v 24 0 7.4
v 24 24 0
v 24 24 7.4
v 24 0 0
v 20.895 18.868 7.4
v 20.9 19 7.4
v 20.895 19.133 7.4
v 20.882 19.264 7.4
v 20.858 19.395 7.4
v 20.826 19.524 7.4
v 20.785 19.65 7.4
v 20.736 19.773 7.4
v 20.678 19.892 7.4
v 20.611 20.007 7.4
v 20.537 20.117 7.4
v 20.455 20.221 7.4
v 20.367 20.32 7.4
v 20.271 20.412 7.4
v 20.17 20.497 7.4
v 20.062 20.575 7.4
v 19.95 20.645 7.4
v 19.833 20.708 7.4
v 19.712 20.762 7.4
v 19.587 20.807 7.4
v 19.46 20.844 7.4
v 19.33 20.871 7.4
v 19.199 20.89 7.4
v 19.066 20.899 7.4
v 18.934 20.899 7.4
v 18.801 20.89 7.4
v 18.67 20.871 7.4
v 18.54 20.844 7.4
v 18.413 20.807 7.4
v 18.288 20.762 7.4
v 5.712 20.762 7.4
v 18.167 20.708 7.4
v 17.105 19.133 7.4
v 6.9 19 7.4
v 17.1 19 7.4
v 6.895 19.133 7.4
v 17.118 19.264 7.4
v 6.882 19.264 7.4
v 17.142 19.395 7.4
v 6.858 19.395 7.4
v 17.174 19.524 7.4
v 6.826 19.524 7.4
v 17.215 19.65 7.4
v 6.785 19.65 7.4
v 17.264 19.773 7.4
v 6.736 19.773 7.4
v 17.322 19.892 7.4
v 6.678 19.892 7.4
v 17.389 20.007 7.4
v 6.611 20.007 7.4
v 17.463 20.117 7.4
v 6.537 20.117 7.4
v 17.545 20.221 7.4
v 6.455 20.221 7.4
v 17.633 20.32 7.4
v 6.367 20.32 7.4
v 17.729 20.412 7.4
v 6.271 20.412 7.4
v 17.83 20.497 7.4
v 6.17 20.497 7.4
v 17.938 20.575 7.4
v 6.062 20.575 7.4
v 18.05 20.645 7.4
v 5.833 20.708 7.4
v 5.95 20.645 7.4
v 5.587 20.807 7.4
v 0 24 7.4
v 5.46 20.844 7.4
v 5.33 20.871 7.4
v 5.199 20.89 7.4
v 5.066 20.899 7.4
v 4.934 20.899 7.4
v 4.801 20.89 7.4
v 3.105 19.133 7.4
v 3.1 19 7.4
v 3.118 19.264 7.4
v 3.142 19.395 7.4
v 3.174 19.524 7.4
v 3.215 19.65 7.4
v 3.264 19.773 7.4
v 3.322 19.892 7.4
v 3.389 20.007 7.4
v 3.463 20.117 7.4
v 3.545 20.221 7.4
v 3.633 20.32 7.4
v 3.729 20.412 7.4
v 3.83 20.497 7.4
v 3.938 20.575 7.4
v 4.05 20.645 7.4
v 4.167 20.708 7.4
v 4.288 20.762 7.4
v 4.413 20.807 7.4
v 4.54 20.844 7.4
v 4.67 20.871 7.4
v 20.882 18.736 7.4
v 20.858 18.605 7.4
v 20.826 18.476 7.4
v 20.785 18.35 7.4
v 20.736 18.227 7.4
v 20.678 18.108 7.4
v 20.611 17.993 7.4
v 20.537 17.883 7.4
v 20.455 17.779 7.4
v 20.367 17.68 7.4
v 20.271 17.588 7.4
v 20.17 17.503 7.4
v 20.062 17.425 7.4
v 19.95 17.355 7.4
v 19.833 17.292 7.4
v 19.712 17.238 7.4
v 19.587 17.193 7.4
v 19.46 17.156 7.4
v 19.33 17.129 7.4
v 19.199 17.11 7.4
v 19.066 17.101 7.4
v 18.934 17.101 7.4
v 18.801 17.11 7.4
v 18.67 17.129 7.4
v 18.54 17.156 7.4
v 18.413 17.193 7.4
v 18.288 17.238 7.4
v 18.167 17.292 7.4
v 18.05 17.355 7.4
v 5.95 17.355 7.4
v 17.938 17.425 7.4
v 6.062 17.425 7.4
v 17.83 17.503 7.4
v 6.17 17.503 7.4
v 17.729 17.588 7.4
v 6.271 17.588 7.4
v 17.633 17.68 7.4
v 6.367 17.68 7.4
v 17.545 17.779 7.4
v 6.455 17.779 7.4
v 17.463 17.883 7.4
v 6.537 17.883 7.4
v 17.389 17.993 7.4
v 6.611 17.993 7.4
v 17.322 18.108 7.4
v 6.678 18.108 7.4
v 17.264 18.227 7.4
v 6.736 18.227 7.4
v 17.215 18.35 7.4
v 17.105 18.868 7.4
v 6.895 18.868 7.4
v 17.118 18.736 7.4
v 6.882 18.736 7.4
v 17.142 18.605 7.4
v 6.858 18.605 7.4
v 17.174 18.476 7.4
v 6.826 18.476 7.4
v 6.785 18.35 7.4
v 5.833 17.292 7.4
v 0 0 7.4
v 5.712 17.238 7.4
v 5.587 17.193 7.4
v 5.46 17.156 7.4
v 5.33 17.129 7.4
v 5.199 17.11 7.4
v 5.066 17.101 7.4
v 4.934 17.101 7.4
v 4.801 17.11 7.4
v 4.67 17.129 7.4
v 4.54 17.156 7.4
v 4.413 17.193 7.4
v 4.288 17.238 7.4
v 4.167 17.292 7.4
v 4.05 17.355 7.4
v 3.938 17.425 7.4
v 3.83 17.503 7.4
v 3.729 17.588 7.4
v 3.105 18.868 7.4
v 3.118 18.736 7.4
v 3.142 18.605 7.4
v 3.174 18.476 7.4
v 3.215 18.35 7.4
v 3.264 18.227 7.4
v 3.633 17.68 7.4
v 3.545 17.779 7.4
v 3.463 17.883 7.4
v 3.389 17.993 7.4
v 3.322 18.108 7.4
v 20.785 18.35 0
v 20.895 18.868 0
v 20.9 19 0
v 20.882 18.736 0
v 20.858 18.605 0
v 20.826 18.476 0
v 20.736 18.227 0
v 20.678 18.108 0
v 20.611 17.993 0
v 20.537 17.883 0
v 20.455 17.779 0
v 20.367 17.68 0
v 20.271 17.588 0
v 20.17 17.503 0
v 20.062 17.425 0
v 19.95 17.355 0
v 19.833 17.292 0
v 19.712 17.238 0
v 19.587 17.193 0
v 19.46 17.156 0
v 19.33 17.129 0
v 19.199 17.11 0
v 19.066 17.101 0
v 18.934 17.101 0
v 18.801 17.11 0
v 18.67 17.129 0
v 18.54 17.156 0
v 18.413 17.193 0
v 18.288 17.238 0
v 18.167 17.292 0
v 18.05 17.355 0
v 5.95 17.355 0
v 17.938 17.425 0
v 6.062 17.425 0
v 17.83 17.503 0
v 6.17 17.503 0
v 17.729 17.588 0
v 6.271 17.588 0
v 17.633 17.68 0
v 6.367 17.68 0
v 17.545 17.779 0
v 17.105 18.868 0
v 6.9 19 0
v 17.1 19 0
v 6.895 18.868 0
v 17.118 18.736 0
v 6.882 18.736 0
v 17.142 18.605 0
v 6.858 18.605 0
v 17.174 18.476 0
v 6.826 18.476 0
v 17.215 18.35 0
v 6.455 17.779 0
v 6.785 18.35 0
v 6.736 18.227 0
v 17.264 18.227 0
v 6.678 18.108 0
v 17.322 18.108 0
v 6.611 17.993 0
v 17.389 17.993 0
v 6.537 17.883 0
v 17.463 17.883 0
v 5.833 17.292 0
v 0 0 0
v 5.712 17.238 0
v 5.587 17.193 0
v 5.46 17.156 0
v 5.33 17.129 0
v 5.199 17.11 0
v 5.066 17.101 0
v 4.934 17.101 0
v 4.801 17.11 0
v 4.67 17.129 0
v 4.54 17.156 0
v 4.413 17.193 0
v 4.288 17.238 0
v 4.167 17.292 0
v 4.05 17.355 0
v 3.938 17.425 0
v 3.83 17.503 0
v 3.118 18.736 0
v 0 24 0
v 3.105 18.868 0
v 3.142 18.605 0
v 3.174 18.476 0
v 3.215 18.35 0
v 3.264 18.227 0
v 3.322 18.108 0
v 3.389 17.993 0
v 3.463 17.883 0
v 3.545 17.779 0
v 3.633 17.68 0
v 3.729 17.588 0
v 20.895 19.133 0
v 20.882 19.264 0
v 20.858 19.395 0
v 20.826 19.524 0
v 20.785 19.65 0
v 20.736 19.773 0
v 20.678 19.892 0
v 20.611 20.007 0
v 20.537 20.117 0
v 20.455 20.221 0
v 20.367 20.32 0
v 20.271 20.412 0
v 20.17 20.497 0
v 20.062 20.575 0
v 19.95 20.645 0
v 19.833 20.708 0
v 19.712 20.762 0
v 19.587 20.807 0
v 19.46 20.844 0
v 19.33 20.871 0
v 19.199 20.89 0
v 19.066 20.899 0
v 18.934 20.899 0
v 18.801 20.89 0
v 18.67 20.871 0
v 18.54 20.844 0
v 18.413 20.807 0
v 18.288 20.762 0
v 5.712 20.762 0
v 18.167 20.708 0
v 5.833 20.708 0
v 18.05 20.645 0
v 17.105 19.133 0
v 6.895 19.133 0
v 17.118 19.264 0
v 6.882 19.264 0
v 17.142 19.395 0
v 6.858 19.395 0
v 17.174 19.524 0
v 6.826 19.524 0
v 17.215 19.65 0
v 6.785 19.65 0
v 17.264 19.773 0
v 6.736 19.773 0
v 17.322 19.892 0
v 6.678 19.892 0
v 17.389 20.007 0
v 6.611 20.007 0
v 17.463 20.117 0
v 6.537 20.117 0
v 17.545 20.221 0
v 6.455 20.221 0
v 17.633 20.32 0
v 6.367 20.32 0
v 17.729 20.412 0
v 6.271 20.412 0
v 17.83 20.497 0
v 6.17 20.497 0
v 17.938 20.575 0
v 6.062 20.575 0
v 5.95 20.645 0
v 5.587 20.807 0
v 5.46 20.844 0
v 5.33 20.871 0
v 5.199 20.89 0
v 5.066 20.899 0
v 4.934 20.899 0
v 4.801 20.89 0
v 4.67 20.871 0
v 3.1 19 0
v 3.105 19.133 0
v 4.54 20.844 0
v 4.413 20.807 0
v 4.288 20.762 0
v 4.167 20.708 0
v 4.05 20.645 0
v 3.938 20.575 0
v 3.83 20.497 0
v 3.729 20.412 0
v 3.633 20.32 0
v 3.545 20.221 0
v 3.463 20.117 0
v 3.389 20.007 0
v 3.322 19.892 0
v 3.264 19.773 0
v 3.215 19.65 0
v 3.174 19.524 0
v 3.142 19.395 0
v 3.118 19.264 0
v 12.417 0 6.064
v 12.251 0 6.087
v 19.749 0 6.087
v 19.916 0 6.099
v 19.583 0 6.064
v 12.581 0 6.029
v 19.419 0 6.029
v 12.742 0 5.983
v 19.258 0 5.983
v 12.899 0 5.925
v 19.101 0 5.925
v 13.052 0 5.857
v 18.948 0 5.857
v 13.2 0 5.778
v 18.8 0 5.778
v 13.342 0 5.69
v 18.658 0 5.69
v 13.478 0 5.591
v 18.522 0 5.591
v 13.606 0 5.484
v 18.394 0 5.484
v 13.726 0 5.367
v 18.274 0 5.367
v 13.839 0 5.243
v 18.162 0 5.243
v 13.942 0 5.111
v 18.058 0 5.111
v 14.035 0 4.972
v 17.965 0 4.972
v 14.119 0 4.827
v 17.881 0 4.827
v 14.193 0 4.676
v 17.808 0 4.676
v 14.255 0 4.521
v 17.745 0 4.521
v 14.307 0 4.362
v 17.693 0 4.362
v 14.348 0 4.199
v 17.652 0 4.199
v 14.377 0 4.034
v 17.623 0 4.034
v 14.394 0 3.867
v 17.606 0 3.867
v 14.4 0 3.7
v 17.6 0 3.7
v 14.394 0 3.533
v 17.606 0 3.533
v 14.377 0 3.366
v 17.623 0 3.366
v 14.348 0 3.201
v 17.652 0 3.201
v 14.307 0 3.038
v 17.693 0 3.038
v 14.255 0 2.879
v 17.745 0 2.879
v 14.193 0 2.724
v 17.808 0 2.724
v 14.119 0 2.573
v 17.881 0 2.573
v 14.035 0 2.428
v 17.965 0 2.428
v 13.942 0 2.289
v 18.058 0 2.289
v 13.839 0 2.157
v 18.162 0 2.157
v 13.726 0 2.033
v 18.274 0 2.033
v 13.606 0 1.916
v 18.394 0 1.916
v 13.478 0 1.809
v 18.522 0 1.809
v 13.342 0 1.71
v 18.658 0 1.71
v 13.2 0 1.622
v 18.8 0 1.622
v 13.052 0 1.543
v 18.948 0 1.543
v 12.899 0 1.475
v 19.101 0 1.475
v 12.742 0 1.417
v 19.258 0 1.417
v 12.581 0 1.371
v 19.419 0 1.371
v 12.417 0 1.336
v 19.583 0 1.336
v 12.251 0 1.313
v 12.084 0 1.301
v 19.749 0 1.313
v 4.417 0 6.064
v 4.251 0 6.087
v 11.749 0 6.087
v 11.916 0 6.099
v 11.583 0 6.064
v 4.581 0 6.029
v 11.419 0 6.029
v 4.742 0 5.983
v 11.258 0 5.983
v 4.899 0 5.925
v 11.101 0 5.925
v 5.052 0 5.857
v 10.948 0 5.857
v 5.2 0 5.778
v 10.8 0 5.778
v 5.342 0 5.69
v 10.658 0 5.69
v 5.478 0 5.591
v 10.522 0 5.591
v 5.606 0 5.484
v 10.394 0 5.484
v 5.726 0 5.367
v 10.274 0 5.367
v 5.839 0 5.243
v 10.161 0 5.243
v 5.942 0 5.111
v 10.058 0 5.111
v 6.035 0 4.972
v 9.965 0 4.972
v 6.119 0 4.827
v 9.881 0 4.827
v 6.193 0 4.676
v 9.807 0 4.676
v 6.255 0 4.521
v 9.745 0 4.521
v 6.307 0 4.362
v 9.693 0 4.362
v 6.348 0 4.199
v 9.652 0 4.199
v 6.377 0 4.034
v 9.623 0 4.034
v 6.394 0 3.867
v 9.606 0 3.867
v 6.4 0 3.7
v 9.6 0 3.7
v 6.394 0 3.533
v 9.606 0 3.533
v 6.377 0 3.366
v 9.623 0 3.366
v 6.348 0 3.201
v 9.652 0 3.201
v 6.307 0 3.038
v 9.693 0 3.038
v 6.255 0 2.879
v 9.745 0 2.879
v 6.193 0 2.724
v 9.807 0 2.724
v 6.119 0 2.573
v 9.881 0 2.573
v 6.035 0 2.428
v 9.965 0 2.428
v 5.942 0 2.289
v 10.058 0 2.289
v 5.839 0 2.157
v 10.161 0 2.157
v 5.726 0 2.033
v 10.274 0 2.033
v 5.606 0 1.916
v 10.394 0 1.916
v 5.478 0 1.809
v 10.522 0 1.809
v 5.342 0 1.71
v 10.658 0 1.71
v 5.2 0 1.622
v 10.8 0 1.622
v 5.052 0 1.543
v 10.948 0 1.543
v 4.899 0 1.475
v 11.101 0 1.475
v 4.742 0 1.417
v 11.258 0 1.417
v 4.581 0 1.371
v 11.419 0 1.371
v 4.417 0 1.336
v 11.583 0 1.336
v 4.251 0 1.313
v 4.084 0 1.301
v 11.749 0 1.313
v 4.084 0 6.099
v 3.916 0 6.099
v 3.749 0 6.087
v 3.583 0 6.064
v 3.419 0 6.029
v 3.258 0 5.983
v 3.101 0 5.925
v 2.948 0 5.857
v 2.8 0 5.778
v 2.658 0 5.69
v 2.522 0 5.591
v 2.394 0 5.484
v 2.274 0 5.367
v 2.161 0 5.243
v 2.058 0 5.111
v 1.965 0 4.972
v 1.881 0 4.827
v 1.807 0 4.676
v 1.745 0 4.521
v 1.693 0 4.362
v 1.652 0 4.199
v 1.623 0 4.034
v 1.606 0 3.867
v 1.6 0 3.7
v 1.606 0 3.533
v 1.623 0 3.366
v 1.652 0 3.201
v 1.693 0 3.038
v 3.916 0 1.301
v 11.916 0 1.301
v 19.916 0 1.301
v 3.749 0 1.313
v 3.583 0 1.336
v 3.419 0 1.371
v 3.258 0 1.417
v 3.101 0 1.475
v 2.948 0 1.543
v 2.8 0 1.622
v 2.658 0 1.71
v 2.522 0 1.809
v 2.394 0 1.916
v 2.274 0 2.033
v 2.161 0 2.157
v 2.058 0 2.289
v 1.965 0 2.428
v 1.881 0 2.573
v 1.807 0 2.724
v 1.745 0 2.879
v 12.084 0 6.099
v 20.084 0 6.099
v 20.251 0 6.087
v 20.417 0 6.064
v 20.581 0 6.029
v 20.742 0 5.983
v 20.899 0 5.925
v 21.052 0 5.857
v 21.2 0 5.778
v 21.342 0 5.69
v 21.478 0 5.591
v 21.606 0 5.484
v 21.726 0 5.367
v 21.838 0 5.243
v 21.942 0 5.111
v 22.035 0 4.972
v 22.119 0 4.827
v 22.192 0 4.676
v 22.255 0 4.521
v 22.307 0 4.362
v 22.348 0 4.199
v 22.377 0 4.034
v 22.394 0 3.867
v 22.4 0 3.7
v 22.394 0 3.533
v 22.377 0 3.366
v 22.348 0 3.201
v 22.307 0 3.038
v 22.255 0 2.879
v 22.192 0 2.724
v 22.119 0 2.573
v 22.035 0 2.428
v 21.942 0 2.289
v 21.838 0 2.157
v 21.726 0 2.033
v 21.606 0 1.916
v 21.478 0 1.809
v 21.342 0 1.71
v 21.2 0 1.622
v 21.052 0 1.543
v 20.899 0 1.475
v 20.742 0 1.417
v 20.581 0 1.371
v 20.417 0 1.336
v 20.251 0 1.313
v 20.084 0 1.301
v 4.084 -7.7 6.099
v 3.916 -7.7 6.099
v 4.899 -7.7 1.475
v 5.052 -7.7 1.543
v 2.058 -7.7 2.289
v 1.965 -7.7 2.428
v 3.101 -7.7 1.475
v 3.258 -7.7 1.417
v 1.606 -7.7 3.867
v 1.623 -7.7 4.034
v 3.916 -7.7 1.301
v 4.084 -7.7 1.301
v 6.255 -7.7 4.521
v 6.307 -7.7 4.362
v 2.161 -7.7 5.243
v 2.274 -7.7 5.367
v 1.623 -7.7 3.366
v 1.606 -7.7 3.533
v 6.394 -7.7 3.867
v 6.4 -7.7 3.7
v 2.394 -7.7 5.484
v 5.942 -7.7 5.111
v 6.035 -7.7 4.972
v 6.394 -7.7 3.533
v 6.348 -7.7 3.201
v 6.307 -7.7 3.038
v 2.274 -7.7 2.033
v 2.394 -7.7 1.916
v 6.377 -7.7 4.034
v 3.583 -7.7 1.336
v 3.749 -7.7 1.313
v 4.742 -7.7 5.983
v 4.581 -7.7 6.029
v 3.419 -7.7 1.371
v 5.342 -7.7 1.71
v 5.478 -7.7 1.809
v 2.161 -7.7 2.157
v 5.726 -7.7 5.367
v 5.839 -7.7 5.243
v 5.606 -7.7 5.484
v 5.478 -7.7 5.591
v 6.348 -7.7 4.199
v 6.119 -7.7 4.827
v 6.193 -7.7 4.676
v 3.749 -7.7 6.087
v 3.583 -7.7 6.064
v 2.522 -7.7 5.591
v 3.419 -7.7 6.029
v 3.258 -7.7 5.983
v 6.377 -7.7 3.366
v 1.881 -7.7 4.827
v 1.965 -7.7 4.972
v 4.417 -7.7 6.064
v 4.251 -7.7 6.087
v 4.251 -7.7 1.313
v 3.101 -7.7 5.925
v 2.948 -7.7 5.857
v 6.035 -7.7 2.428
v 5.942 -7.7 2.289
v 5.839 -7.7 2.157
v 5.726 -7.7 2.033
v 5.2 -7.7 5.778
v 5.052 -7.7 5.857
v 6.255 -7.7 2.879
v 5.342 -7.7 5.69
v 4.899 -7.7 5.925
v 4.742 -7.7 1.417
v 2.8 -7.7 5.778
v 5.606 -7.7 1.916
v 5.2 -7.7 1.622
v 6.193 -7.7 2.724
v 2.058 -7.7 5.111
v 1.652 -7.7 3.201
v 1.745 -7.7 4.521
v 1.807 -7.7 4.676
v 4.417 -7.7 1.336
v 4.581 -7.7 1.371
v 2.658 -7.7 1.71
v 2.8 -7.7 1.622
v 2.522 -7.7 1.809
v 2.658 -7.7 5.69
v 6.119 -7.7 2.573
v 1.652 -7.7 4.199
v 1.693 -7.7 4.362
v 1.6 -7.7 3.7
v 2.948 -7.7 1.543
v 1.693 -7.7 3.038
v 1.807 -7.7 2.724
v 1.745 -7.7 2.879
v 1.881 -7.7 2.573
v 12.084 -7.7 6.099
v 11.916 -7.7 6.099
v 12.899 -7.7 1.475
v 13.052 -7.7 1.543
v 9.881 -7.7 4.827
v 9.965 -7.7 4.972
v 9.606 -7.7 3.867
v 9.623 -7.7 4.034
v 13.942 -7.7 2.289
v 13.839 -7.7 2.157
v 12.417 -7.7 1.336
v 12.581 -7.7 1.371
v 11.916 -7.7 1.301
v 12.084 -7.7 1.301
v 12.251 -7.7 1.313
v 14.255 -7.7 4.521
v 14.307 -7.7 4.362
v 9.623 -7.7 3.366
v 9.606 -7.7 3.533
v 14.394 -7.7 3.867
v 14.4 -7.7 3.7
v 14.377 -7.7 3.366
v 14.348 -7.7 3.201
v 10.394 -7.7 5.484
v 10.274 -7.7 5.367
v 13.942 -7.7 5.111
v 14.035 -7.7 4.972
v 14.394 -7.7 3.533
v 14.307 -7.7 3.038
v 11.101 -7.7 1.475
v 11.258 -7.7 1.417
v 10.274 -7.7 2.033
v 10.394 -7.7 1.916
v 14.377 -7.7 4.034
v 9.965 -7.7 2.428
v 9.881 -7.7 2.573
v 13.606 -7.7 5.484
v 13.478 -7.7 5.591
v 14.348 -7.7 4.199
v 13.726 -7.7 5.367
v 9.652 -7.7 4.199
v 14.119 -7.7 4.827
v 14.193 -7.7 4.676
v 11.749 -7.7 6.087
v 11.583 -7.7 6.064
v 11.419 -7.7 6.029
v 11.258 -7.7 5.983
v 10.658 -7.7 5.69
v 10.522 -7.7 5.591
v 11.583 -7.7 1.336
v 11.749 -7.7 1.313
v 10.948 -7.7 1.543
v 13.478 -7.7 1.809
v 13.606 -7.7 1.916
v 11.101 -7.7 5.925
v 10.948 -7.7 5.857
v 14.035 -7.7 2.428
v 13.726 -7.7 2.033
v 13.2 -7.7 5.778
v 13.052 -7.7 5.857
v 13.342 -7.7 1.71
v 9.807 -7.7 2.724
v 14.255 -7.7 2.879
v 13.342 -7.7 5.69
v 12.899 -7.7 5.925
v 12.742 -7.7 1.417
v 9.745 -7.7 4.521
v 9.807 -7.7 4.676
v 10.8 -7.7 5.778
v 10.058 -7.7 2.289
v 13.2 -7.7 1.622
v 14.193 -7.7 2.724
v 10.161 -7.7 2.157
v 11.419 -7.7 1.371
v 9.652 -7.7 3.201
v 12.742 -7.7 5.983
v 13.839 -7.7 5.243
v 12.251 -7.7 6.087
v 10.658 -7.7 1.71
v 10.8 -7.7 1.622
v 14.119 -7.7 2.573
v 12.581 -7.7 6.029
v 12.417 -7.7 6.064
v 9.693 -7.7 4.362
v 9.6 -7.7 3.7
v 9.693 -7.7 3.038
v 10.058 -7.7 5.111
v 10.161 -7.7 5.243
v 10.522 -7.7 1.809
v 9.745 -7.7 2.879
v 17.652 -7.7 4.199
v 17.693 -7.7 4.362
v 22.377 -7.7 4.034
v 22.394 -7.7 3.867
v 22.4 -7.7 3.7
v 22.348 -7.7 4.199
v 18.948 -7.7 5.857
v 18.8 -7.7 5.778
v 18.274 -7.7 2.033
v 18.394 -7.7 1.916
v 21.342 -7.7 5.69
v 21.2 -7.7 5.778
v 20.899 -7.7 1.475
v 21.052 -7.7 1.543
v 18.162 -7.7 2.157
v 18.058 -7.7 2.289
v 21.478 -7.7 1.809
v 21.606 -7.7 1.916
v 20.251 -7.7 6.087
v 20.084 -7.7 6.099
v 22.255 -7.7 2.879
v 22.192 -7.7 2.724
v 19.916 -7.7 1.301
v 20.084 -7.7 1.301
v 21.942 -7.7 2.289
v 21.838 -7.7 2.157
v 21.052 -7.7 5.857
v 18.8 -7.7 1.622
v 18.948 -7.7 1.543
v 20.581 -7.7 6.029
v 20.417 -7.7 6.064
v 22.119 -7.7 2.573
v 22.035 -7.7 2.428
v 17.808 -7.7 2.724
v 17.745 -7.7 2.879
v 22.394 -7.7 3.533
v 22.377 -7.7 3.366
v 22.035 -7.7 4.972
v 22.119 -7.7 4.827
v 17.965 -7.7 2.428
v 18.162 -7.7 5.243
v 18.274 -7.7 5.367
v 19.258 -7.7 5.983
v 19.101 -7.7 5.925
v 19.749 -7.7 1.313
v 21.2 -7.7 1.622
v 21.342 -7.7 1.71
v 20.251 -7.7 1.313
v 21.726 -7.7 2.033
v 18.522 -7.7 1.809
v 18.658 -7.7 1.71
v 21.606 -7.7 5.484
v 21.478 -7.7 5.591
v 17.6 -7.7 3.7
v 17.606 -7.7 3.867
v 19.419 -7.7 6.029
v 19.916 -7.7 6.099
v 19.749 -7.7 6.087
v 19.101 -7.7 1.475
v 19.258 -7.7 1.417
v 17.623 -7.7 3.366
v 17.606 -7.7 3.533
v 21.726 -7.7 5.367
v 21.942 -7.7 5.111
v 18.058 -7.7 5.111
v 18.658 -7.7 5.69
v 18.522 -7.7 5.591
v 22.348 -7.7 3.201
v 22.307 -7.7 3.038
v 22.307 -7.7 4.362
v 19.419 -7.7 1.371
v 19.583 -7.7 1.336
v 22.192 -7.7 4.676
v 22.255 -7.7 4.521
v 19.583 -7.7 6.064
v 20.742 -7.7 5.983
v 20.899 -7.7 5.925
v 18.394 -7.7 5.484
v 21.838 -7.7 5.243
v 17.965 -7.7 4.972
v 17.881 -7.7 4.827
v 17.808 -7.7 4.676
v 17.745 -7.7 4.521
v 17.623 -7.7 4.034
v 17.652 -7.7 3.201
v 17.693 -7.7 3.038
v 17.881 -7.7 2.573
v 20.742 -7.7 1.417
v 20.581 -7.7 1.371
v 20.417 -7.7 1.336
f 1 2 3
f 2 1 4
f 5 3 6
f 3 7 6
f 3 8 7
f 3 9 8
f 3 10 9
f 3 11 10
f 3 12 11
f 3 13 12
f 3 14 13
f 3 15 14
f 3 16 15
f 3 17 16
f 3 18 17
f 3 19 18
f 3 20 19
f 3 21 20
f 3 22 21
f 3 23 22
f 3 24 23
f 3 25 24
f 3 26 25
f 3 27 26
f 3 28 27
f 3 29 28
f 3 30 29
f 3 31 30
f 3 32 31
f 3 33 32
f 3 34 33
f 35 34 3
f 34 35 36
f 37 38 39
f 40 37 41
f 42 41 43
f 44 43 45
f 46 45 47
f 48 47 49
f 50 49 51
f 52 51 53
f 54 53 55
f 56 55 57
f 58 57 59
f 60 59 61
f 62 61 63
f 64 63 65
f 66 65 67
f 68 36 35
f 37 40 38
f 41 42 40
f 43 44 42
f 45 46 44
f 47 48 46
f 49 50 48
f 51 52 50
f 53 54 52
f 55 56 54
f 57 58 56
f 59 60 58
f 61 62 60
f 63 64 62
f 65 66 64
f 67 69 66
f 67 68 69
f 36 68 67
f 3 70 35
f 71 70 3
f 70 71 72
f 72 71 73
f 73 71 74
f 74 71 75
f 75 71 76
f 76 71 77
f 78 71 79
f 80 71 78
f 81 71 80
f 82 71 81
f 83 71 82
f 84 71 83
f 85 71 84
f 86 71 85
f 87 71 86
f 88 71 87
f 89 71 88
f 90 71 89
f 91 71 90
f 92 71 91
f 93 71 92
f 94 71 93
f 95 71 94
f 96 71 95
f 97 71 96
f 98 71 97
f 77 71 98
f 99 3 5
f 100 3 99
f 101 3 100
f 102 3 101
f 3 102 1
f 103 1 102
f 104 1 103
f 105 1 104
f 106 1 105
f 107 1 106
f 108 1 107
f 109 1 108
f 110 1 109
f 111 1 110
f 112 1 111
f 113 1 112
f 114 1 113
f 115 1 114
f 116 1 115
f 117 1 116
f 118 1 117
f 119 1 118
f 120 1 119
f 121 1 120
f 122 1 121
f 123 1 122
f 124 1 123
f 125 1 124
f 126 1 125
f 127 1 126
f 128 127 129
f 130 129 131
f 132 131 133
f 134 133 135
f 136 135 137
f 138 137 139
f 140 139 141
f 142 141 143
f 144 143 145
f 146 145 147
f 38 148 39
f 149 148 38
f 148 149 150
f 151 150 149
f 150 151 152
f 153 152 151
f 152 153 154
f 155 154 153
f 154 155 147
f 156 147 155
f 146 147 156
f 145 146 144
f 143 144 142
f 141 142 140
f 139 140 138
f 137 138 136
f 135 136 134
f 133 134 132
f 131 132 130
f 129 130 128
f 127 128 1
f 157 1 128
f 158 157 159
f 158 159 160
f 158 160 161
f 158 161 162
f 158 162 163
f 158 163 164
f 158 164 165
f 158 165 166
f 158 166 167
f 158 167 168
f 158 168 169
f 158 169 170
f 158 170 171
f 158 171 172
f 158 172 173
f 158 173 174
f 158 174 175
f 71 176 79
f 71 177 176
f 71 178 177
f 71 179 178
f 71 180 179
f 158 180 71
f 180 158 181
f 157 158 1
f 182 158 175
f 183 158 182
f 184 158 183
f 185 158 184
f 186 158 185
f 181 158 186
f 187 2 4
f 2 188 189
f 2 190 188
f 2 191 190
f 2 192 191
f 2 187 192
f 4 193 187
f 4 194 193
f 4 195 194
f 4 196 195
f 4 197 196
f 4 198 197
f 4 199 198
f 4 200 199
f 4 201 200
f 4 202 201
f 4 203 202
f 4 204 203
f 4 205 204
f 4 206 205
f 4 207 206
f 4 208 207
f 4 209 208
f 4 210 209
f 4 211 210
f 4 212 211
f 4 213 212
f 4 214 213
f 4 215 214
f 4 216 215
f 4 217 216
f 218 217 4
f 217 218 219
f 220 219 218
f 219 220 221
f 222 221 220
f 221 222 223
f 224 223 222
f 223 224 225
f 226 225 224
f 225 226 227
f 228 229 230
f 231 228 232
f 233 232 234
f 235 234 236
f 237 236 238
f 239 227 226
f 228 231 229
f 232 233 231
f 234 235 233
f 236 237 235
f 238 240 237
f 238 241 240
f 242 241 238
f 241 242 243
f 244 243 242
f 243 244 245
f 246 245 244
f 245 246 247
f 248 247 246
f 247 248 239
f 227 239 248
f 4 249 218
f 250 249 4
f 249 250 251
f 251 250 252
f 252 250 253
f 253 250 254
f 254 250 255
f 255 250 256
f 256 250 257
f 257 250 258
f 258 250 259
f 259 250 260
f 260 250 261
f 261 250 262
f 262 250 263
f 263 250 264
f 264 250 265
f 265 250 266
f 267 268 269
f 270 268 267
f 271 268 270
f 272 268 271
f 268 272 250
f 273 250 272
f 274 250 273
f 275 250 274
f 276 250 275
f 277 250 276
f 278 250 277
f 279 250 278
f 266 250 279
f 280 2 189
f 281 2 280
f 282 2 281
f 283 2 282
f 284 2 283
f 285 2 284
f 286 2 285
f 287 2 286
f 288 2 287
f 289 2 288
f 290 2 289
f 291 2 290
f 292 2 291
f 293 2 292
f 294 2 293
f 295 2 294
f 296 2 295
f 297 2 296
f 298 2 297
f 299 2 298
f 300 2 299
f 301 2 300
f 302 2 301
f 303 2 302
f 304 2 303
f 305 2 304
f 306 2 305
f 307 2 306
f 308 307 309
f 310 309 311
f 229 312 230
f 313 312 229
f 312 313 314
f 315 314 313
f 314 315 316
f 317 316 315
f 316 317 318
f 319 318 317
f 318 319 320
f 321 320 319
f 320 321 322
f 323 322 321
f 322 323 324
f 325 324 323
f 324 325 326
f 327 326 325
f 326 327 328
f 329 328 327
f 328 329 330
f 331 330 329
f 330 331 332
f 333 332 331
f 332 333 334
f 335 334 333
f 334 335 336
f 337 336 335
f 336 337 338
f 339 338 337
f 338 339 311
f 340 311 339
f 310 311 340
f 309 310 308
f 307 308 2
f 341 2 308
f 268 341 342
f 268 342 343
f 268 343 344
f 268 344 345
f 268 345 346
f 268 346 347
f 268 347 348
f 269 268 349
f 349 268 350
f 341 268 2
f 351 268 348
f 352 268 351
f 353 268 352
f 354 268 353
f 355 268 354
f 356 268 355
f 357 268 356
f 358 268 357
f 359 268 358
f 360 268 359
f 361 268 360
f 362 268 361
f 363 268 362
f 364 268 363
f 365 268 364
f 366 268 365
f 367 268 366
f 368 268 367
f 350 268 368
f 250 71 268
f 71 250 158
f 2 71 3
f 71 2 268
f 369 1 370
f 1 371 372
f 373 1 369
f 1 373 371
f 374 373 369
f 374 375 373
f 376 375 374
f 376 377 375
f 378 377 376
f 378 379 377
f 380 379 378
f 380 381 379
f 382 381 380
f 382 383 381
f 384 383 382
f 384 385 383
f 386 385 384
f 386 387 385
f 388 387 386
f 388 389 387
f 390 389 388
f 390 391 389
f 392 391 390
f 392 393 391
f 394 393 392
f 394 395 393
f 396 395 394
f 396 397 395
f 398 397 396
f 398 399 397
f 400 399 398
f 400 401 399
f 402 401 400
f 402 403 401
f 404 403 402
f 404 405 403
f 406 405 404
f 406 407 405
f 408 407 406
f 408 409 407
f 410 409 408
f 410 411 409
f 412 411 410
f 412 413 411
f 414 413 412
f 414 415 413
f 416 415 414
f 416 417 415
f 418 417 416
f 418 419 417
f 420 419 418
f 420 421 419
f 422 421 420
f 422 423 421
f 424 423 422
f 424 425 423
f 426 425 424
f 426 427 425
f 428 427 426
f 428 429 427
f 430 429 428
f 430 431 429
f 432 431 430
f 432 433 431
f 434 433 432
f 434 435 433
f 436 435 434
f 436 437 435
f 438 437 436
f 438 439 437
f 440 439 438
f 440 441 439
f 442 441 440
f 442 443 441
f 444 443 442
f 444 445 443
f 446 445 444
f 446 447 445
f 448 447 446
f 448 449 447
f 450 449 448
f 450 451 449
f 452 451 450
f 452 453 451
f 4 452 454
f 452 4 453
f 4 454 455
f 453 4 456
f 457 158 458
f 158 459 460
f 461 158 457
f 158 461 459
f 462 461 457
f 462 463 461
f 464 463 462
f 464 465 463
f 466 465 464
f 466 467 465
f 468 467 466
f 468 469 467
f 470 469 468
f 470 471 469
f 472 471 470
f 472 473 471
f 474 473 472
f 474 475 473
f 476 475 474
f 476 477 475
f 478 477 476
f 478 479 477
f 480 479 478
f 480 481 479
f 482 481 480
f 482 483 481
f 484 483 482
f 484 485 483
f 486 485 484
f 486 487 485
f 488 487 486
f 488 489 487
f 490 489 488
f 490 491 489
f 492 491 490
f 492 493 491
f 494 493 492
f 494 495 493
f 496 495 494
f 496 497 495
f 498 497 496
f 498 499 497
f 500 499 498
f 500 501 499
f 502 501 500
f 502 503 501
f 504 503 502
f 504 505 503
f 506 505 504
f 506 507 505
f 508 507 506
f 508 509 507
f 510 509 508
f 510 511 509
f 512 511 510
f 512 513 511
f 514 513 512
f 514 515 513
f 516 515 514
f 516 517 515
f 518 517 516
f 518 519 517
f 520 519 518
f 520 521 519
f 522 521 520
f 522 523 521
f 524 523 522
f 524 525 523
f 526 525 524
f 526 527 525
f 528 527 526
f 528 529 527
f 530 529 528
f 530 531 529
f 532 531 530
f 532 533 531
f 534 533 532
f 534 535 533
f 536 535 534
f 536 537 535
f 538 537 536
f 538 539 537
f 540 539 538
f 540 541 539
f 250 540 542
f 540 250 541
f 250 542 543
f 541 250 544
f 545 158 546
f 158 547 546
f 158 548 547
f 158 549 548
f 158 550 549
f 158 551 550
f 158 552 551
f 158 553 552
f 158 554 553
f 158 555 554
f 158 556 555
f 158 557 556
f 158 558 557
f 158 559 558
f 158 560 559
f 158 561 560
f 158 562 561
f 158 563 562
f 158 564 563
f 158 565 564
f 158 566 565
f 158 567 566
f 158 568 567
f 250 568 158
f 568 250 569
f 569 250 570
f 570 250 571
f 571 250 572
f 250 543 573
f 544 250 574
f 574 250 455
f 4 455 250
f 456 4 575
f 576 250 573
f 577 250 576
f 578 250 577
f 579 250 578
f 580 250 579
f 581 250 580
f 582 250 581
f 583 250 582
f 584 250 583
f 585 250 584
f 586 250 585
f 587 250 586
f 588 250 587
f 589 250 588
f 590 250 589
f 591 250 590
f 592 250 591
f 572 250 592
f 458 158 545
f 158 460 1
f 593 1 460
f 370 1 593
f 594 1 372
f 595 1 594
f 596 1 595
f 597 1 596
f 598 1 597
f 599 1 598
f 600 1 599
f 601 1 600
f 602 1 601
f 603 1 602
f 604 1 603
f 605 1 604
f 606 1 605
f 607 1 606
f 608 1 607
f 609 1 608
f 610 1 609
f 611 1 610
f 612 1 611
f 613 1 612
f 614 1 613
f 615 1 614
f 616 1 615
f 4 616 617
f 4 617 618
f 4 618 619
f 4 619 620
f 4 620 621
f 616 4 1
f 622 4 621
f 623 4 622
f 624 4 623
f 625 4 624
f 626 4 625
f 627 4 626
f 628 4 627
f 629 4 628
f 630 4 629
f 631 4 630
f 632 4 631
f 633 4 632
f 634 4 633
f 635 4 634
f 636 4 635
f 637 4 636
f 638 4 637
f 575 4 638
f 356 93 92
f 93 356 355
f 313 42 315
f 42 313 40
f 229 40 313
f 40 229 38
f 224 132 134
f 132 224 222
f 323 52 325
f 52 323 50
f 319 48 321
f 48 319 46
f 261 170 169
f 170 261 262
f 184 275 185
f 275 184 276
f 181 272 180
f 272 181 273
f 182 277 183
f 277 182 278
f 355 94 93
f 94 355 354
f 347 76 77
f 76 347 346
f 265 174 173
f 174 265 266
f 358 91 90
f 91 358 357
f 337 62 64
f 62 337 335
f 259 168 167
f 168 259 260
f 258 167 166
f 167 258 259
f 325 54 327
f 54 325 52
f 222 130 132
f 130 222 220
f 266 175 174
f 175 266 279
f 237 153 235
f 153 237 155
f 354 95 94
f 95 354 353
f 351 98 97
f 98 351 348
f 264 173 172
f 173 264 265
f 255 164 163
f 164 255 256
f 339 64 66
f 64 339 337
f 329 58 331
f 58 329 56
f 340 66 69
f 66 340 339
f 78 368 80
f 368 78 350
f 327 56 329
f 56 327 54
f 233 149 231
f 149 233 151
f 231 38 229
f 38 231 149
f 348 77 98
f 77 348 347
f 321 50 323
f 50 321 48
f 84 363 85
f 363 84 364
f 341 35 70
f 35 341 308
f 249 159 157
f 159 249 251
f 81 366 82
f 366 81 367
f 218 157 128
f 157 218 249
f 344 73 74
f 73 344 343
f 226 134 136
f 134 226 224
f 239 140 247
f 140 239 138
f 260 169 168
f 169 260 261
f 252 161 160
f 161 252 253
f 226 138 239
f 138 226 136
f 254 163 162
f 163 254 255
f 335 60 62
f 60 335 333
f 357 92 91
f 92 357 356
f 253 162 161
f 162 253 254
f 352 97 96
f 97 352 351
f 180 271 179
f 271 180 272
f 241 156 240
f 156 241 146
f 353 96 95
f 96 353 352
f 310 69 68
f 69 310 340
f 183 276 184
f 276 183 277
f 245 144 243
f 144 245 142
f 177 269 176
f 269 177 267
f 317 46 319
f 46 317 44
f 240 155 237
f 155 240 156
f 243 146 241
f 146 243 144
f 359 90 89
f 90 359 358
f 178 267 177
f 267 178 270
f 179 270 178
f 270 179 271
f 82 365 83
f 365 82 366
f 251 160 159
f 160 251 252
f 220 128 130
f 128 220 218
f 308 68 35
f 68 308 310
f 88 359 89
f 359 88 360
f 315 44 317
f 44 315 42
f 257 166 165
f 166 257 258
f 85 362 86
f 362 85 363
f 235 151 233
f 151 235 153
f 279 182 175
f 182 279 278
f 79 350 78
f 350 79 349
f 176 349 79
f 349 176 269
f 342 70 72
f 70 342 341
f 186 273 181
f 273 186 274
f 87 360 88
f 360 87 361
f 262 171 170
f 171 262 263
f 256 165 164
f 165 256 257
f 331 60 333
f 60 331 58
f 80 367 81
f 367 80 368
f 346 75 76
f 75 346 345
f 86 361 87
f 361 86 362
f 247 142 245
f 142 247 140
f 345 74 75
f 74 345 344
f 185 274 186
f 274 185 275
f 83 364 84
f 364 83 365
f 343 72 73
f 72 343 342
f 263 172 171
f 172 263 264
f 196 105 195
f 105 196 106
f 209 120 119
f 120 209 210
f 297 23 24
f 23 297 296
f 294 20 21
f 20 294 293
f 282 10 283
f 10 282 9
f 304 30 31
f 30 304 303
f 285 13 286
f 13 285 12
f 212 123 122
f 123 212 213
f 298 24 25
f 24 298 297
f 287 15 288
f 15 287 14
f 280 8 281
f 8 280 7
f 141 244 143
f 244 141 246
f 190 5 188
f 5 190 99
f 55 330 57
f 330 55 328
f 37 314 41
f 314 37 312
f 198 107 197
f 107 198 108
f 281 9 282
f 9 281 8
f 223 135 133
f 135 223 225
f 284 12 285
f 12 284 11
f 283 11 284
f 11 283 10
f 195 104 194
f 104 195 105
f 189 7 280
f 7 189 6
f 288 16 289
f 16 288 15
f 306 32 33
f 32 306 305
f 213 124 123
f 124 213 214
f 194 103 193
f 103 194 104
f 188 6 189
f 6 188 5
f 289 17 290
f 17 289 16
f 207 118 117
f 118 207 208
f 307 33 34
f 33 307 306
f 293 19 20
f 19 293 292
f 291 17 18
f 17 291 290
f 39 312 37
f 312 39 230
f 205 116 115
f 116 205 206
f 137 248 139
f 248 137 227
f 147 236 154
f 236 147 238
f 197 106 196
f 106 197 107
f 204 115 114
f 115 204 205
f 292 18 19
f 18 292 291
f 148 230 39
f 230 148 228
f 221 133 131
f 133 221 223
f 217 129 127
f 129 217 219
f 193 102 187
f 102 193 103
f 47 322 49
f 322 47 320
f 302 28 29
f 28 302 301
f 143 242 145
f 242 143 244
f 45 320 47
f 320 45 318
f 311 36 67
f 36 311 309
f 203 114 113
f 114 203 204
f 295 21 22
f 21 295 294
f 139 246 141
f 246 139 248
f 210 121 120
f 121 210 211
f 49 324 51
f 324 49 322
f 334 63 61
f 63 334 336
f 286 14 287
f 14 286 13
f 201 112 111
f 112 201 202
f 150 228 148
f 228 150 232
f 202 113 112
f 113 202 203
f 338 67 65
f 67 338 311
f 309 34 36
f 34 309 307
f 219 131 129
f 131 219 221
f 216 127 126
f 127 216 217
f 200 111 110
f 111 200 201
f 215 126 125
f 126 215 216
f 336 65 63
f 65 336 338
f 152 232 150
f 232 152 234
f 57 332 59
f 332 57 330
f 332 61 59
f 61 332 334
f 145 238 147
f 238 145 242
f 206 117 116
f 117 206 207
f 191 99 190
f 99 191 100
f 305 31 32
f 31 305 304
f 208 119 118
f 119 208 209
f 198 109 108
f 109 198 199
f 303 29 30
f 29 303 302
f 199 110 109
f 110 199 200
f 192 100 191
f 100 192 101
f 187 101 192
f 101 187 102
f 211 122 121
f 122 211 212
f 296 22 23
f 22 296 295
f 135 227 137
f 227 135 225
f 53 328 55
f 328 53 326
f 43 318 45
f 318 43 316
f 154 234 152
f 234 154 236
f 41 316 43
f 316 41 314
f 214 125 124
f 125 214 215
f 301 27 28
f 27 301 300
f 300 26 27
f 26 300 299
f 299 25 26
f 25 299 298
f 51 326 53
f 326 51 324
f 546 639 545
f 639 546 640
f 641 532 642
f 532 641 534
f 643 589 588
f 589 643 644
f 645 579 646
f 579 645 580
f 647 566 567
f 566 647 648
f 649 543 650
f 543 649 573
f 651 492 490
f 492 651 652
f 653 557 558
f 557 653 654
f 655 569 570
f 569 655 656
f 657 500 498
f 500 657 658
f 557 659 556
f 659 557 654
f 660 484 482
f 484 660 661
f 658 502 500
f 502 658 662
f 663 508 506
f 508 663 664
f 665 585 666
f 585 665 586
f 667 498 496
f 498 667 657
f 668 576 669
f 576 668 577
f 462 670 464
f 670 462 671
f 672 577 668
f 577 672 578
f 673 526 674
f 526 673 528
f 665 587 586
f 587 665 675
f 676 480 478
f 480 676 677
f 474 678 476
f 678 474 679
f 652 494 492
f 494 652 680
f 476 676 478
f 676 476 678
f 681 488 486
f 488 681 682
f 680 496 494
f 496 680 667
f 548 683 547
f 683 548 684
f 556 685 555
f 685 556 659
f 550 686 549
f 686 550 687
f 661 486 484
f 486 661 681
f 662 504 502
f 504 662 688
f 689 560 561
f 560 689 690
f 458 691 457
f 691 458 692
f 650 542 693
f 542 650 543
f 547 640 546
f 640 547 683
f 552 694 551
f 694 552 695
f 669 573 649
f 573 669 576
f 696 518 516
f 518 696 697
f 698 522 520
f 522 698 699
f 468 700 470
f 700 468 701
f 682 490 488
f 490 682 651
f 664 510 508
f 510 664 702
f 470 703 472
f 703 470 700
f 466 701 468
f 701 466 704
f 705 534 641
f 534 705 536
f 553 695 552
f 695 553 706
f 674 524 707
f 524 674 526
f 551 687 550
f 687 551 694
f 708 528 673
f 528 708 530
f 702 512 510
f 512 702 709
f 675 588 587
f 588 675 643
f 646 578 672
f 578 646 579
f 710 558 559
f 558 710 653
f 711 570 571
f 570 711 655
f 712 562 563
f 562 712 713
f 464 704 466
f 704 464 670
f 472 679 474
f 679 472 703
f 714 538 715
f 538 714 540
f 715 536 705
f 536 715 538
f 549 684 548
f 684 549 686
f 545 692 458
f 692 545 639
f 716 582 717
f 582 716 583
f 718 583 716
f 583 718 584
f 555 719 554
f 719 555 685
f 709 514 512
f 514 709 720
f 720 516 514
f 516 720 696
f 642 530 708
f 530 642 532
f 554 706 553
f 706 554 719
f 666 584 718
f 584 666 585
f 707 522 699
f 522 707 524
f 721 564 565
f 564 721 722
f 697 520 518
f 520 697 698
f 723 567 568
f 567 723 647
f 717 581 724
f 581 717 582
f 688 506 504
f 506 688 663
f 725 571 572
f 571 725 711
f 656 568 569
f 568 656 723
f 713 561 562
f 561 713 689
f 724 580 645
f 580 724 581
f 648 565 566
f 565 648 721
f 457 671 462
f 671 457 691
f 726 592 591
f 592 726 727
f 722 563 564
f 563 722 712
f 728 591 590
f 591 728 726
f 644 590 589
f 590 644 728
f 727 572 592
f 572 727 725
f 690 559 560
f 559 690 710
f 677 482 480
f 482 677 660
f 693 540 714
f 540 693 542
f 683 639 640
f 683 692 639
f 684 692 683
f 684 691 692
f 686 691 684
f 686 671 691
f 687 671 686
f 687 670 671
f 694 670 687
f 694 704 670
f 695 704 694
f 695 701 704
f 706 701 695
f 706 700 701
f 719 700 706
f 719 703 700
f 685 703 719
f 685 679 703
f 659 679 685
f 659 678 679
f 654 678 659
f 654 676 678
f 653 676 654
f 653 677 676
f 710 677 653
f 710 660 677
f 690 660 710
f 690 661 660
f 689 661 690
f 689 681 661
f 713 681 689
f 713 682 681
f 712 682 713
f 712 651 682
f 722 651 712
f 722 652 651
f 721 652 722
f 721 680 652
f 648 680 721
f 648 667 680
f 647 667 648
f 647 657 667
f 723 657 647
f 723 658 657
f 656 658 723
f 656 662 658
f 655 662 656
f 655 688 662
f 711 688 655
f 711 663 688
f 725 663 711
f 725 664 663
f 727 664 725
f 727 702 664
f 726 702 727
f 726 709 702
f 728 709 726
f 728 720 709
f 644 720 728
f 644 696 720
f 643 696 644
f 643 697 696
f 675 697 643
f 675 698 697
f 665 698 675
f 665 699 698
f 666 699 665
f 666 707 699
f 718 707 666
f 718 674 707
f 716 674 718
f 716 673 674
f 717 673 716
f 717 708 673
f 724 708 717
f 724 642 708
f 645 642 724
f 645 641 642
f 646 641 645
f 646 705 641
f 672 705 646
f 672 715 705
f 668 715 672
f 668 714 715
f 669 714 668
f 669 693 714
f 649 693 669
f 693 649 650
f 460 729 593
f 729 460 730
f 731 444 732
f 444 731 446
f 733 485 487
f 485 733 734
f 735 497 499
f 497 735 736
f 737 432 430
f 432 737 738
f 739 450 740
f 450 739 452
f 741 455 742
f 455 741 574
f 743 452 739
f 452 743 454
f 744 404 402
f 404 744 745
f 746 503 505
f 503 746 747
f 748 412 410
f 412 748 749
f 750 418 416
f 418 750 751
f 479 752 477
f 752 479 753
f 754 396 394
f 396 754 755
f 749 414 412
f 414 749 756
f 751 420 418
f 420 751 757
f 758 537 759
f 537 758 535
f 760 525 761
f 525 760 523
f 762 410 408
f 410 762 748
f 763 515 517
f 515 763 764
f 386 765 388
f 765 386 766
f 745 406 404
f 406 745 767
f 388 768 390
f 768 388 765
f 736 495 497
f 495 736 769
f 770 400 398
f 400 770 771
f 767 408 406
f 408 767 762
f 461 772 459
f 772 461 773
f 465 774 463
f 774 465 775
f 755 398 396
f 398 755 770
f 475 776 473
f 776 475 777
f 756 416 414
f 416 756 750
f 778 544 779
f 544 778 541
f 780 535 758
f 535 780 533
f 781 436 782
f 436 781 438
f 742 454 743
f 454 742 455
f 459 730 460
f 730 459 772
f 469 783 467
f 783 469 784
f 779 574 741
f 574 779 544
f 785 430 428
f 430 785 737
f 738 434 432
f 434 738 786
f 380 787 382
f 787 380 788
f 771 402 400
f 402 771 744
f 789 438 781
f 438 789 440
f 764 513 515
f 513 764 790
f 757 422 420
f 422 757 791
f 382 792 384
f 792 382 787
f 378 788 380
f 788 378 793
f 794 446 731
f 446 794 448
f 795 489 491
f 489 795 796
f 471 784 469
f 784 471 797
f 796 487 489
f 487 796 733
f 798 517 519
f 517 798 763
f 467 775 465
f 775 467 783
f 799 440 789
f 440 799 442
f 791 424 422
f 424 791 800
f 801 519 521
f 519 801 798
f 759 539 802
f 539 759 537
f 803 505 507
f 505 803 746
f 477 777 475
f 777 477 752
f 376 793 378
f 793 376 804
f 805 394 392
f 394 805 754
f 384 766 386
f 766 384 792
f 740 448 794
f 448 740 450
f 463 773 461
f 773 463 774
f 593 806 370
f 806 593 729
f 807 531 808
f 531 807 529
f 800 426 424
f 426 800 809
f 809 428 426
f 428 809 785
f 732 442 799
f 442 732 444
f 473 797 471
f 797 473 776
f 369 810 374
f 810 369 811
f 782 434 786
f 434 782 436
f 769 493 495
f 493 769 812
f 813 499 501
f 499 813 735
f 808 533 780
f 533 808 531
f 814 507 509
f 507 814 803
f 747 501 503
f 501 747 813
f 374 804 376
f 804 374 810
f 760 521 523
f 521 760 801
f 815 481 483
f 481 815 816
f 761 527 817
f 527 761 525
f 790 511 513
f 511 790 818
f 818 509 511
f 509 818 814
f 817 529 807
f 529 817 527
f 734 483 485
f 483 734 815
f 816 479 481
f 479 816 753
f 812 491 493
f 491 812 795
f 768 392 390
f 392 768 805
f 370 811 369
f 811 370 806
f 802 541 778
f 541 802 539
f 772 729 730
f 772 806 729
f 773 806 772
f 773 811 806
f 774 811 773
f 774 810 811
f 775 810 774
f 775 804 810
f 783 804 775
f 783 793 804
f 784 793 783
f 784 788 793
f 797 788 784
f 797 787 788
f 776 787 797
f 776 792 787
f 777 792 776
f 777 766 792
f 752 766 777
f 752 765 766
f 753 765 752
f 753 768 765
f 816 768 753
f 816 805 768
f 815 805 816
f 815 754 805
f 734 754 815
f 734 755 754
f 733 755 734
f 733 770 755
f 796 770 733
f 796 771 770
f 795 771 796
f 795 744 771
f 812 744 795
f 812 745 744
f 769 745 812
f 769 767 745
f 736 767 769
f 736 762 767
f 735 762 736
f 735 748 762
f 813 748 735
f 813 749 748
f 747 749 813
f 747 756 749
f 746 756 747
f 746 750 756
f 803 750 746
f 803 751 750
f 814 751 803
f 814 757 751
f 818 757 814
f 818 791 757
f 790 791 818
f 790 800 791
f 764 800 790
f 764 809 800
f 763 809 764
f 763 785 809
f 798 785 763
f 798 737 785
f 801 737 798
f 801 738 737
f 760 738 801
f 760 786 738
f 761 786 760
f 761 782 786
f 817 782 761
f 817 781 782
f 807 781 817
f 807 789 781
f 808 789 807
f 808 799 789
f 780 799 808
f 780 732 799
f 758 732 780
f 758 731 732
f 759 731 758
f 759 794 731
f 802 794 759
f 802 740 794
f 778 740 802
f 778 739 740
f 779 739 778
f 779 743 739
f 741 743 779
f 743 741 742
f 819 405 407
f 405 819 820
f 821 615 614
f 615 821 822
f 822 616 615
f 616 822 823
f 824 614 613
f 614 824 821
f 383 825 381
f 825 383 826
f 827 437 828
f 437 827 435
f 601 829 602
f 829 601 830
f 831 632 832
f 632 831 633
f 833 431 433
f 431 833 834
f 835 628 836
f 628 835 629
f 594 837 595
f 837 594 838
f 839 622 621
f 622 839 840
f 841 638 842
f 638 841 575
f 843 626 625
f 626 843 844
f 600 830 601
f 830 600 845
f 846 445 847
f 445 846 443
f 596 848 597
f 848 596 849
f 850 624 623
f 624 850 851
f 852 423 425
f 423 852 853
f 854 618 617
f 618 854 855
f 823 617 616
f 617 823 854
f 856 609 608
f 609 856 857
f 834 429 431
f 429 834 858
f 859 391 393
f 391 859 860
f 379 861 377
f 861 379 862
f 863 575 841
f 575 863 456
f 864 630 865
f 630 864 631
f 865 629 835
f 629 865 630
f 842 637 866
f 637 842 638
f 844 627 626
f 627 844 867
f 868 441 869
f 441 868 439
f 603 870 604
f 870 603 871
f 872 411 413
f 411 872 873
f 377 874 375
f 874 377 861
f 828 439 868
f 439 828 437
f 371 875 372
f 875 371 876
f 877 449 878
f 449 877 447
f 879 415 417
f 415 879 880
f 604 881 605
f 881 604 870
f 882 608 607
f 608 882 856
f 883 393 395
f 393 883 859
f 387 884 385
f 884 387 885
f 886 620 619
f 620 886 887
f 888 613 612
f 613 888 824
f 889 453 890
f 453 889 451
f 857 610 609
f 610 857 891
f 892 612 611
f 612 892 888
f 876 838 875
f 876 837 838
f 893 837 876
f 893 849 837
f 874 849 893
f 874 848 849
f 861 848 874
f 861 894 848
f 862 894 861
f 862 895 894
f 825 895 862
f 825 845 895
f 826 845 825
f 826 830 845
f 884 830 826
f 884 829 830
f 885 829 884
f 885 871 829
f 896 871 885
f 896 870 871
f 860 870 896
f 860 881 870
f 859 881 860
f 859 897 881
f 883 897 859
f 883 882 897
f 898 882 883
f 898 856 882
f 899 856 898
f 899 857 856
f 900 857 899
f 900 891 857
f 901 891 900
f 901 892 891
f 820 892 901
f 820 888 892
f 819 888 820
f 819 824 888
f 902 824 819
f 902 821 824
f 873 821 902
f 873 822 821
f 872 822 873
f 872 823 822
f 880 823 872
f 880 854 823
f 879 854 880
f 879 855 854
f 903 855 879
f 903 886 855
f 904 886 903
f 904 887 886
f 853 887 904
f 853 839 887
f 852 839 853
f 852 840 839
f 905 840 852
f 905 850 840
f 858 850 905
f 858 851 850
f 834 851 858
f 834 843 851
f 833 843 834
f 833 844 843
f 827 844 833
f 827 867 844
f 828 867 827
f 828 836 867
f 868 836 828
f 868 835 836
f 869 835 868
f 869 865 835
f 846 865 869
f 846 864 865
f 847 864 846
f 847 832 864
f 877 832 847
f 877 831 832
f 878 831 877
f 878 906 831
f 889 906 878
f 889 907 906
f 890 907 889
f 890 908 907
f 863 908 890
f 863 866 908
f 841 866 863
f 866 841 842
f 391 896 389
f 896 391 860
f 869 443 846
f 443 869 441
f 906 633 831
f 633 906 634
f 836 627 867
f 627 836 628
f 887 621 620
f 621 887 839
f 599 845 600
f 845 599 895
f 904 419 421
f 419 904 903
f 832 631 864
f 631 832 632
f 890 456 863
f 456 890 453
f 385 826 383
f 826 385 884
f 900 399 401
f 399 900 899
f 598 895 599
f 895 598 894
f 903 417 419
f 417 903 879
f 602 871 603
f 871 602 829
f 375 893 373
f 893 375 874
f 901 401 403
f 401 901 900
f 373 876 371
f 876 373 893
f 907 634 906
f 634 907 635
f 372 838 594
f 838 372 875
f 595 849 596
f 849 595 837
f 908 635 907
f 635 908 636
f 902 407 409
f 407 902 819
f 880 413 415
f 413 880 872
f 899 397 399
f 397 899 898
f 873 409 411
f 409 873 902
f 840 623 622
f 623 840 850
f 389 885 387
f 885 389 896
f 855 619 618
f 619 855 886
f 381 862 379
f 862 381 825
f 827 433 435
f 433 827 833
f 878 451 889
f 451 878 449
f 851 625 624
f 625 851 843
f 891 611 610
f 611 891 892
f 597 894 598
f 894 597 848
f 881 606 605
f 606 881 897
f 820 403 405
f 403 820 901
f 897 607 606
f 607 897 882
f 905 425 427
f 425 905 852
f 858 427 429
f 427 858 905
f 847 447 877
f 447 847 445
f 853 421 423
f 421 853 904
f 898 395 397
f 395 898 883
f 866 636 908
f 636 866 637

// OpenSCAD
$fn=90;

cubeThickness = 7.4;
cubeSideLength = 24;

difference(){
	cube([cubeSideLength, cubeSideLength, cubeThickness]);
	holeDiameter = 3.8;
	holeBorderDistance = 5;
	#translate([holeBorderDistance, cubeSideLength-holeBorderDistance, -0.5])
		cylinder(h=cubeThickness+1, d=holeDiameter);
	#translate([cubeSideLength-holeBorderDistance, cubeSideLength-holeBorderDistance, -0.5])
		cylinder(h=cubeThickness+1, d=holeDiameter);
}

rodDiameter = 4.8;
rodLength = 7.7;
rodDistance = 8;
rodHeight = 1.3 + rodDiameter/2;

translate([0, 0, rodHeight])
	rotate([90, 0, 0]){
		numberOfRods = 3;
		firstRodX = (cubeSideLength - (numberOfRods-1)*rodDistance)/2;
		translate([firstRodX, 0, 0])
			cylinder(h=rodLength, d=rodDiameter);
		translate([firstRodX+rodDistance, 0, 0])
			cylinder(h=rodLength, d=rodDiameter);
		translate([firstRodX+2*rodDistance, 0, 0])
			cylinder(h=rodLength, d=rodDiameter);
	}
